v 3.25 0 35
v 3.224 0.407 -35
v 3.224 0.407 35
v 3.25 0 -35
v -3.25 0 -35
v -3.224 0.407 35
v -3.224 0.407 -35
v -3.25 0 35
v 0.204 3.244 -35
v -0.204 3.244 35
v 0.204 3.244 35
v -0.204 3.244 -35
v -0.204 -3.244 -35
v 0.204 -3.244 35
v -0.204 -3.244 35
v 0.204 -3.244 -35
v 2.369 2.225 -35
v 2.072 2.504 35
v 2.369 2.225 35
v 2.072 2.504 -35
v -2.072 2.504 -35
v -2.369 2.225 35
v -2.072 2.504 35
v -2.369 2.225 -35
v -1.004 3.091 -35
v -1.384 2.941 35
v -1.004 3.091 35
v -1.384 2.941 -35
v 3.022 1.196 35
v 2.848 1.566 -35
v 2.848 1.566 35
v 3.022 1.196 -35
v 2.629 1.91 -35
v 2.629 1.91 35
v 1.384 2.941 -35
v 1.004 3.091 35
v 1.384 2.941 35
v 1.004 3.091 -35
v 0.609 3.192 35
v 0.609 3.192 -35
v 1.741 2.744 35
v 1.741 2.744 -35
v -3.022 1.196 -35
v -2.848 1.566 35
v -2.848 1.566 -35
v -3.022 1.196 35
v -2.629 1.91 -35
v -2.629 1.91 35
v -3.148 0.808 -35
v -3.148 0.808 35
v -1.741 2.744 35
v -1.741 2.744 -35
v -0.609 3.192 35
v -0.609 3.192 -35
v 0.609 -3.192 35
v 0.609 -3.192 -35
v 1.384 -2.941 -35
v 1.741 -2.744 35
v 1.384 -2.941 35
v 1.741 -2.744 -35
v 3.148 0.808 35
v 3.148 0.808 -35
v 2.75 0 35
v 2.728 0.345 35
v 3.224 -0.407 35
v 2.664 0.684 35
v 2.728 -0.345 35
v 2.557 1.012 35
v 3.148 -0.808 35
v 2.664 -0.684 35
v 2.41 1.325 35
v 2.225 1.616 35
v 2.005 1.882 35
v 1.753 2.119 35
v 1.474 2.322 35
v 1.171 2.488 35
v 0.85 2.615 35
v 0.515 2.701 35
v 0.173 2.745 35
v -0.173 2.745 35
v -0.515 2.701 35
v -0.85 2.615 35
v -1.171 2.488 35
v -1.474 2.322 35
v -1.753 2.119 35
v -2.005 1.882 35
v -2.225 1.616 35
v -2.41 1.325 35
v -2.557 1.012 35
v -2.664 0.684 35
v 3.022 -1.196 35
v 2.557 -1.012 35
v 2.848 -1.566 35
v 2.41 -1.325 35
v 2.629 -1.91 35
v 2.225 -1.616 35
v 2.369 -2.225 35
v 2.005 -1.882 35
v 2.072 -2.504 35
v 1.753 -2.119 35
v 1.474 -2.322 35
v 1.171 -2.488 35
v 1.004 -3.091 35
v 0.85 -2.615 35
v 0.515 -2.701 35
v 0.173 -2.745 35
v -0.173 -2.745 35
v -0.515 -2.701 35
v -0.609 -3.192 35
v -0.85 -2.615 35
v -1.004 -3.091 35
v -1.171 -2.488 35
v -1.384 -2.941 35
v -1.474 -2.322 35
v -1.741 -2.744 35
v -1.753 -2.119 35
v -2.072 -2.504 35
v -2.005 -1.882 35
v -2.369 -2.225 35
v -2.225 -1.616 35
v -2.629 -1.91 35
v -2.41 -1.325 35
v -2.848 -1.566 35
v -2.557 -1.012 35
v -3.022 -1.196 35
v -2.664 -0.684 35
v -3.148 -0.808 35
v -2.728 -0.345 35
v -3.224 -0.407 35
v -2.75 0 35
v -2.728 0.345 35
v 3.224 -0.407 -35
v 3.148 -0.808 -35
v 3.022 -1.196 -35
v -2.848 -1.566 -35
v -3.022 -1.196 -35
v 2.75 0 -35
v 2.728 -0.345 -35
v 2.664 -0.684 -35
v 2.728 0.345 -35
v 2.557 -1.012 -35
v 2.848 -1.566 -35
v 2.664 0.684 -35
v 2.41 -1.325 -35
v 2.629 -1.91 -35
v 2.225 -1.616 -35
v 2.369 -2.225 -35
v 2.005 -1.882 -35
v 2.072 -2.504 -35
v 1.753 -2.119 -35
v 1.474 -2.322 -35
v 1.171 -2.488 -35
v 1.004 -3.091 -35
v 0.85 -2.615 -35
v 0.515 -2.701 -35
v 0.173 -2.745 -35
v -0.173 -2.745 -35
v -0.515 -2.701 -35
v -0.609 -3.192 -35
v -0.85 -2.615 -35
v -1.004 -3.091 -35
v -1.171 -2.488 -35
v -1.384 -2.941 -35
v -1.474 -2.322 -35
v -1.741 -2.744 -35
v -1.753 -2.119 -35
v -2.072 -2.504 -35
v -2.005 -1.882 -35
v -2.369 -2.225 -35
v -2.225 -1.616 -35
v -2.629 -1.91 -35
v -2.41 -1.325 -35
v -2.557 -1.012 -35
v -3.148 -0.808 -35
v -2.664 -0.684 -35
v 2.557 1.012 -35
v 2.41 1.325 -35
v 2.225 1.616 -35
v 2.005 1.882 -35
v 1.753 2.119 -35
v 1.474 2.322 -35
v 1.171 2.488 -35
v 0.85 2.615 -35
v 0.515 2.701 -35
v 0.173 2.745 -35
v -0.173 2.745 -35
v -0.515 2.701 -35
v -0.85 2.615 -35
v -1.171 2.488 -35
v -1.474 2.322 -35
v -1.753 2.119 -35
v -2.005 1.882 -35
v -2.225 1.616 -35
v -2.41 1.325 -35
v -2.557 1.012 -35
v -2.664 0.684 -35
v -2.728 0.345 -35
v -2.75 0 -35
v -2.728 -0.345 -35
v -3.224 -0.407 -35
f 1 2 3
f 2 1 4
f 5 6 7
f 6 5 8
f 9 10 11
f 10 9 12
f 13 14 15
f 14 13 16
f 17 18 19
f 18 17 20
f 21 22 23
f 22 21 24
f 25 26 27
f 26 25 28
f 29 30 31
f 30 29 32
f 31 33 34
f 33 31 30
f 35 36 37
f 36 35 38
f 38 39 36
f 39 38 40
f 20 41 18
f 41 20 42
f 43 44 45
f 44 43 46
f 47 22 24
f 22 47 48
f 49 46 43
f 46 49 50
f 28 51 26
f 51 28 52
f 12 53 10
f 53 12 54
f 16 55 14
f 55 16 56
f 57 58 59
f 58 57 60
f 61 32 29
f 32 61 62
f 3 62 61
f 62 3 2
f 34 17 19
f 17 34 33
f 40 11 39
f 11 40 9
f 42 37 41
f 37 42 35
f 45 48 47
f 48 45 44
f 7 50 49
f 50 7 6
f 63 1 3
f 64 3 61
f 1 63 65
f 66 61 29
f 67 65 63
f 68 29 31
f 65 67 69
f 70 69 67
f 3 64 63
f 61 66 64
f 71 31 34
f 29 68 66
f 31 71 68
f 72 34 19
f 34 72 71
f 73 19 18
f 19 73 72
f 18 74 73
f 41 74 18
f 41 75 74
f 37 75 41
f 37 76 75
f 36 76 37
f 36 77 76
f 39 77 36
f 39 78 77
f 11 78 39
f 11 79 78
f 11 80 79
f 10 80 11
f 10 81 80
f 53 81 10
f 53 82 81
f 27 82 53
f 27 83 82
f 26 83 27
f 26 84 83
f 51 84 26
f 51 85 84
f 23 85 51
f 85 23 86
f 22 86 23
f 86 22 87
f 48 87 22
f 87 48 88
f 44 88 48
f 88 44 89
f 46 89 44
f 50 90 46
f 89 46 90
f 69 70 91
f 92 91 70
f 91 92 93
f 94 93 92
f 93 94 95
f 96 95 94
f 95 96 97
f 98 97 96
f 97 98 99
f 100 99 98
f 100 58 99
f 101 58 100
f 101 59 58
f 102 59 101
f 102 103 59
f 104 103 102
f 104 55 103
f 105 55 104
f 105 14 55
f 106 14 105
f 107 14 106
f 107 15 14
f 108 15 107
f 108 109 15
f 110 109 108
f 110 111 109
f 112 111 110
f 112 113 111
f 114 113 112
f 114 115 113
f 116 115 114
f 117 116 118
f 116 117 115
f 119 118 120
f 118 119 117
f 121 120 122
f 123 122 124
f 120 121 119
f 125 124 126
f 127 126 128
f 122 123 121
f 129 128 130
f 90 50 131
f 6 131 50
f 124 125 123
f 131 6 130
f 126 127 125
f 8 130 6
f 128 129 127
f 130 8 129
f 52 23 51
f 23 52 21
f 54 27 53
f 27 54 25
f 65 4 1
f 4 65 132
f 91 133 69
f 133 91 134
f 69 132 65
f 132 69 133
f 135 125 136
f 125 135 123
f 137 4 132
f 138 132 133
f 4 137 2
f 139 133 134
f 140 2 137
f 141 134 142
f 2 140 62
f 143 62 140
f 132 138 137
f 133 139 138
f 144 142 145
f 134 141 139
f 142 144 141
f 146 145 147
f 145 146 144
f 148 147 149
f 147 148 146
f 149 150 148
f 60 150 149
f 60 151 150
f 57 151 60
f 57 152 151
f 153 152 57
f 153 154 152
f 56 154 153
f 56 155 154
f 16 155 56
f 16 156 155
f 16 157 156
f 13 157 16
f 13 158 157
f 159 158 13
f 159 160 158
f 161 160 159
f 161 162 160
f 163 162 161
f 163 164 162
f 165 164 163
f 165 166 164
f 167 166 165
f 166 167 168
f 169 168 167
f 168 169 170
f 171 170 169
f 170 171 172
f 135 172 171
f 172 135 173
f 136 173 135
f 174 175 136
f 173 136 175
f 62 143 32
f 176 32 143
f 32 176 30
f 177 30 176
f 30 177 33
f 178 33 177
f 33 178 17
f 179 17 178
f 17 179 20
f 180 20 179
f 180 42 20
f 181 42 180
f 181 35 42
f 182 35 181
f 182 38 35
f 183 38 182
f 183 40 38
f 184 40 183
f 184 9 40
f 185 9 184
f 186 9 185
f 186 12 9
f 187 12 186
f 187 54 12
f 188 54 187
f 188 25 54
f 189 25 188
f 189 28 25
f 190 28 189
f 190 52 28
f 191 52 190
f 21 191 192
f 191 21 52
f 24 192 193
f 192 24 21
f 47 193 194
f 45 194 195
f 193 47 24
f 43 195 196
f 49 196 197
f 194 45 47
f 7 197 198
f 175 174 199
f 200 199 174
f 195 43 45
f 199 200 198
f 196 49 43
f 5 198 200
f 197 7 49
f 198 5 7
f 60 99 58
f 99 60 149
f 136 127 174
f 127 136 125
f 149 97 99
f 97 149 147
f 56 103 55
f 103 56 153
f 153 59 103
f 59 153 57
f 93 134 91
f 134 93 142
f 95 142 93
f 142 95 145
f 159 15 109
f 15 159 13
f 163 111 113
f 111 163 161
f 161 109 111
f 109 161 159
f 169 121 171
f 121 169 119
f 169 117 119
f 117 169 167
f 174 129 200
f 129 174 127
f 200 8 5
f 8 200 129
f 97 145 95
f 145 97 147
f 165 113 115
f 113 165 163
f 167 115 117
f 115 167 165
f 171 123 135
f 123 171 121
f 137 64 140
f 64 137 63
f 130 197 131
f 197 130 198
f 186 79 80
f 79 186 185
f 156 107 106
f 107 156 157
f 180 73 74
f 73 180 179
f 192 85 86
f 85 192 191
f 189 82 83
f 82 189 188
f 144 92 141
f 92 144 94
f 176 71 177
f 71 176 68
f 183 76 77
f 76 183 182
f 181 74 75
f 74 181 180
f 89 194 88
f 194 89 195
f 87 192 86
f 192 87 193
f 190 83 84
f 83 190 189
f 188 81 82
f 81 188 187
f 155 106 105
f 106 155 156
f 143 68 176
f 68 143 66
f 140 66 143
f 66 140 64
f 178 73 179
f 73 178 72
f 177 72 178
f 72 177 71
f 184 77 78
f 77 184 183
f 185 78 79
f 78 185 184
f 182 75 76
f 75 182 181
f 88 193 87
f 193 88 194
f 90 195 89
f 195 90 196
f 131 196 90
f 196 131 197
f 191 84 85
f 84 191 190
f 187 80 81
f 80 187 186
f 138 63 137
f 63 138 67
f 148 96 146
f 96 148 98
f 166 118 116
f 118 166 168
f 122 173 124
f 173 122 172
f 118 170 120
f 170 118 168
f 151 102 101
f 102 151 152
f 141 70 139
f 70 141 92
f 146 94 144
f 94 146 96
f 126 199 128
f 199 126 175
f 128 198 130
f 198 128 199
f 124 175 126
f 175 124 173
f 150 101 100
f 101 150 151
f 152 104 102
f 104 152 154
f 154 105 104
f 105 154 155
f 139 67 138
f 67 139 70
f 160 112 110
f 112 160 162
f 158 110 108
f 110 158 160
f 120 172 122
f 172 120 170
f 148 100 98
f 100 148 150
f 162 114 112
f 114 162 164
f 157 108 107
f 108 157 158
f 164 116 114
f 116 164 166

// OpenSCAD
$fn = 50;


difference() {
	union() {
		translate(v = [0, 0, -35.0000000000]) {
			cylinder(h = 70, r = 3.2500000000);
		}
	}
	union() {
		translate(v = [0, 0, -100.0000000000]) {
			cylinder(h = 200, r = 2.7500000000);
		}
	}
}
